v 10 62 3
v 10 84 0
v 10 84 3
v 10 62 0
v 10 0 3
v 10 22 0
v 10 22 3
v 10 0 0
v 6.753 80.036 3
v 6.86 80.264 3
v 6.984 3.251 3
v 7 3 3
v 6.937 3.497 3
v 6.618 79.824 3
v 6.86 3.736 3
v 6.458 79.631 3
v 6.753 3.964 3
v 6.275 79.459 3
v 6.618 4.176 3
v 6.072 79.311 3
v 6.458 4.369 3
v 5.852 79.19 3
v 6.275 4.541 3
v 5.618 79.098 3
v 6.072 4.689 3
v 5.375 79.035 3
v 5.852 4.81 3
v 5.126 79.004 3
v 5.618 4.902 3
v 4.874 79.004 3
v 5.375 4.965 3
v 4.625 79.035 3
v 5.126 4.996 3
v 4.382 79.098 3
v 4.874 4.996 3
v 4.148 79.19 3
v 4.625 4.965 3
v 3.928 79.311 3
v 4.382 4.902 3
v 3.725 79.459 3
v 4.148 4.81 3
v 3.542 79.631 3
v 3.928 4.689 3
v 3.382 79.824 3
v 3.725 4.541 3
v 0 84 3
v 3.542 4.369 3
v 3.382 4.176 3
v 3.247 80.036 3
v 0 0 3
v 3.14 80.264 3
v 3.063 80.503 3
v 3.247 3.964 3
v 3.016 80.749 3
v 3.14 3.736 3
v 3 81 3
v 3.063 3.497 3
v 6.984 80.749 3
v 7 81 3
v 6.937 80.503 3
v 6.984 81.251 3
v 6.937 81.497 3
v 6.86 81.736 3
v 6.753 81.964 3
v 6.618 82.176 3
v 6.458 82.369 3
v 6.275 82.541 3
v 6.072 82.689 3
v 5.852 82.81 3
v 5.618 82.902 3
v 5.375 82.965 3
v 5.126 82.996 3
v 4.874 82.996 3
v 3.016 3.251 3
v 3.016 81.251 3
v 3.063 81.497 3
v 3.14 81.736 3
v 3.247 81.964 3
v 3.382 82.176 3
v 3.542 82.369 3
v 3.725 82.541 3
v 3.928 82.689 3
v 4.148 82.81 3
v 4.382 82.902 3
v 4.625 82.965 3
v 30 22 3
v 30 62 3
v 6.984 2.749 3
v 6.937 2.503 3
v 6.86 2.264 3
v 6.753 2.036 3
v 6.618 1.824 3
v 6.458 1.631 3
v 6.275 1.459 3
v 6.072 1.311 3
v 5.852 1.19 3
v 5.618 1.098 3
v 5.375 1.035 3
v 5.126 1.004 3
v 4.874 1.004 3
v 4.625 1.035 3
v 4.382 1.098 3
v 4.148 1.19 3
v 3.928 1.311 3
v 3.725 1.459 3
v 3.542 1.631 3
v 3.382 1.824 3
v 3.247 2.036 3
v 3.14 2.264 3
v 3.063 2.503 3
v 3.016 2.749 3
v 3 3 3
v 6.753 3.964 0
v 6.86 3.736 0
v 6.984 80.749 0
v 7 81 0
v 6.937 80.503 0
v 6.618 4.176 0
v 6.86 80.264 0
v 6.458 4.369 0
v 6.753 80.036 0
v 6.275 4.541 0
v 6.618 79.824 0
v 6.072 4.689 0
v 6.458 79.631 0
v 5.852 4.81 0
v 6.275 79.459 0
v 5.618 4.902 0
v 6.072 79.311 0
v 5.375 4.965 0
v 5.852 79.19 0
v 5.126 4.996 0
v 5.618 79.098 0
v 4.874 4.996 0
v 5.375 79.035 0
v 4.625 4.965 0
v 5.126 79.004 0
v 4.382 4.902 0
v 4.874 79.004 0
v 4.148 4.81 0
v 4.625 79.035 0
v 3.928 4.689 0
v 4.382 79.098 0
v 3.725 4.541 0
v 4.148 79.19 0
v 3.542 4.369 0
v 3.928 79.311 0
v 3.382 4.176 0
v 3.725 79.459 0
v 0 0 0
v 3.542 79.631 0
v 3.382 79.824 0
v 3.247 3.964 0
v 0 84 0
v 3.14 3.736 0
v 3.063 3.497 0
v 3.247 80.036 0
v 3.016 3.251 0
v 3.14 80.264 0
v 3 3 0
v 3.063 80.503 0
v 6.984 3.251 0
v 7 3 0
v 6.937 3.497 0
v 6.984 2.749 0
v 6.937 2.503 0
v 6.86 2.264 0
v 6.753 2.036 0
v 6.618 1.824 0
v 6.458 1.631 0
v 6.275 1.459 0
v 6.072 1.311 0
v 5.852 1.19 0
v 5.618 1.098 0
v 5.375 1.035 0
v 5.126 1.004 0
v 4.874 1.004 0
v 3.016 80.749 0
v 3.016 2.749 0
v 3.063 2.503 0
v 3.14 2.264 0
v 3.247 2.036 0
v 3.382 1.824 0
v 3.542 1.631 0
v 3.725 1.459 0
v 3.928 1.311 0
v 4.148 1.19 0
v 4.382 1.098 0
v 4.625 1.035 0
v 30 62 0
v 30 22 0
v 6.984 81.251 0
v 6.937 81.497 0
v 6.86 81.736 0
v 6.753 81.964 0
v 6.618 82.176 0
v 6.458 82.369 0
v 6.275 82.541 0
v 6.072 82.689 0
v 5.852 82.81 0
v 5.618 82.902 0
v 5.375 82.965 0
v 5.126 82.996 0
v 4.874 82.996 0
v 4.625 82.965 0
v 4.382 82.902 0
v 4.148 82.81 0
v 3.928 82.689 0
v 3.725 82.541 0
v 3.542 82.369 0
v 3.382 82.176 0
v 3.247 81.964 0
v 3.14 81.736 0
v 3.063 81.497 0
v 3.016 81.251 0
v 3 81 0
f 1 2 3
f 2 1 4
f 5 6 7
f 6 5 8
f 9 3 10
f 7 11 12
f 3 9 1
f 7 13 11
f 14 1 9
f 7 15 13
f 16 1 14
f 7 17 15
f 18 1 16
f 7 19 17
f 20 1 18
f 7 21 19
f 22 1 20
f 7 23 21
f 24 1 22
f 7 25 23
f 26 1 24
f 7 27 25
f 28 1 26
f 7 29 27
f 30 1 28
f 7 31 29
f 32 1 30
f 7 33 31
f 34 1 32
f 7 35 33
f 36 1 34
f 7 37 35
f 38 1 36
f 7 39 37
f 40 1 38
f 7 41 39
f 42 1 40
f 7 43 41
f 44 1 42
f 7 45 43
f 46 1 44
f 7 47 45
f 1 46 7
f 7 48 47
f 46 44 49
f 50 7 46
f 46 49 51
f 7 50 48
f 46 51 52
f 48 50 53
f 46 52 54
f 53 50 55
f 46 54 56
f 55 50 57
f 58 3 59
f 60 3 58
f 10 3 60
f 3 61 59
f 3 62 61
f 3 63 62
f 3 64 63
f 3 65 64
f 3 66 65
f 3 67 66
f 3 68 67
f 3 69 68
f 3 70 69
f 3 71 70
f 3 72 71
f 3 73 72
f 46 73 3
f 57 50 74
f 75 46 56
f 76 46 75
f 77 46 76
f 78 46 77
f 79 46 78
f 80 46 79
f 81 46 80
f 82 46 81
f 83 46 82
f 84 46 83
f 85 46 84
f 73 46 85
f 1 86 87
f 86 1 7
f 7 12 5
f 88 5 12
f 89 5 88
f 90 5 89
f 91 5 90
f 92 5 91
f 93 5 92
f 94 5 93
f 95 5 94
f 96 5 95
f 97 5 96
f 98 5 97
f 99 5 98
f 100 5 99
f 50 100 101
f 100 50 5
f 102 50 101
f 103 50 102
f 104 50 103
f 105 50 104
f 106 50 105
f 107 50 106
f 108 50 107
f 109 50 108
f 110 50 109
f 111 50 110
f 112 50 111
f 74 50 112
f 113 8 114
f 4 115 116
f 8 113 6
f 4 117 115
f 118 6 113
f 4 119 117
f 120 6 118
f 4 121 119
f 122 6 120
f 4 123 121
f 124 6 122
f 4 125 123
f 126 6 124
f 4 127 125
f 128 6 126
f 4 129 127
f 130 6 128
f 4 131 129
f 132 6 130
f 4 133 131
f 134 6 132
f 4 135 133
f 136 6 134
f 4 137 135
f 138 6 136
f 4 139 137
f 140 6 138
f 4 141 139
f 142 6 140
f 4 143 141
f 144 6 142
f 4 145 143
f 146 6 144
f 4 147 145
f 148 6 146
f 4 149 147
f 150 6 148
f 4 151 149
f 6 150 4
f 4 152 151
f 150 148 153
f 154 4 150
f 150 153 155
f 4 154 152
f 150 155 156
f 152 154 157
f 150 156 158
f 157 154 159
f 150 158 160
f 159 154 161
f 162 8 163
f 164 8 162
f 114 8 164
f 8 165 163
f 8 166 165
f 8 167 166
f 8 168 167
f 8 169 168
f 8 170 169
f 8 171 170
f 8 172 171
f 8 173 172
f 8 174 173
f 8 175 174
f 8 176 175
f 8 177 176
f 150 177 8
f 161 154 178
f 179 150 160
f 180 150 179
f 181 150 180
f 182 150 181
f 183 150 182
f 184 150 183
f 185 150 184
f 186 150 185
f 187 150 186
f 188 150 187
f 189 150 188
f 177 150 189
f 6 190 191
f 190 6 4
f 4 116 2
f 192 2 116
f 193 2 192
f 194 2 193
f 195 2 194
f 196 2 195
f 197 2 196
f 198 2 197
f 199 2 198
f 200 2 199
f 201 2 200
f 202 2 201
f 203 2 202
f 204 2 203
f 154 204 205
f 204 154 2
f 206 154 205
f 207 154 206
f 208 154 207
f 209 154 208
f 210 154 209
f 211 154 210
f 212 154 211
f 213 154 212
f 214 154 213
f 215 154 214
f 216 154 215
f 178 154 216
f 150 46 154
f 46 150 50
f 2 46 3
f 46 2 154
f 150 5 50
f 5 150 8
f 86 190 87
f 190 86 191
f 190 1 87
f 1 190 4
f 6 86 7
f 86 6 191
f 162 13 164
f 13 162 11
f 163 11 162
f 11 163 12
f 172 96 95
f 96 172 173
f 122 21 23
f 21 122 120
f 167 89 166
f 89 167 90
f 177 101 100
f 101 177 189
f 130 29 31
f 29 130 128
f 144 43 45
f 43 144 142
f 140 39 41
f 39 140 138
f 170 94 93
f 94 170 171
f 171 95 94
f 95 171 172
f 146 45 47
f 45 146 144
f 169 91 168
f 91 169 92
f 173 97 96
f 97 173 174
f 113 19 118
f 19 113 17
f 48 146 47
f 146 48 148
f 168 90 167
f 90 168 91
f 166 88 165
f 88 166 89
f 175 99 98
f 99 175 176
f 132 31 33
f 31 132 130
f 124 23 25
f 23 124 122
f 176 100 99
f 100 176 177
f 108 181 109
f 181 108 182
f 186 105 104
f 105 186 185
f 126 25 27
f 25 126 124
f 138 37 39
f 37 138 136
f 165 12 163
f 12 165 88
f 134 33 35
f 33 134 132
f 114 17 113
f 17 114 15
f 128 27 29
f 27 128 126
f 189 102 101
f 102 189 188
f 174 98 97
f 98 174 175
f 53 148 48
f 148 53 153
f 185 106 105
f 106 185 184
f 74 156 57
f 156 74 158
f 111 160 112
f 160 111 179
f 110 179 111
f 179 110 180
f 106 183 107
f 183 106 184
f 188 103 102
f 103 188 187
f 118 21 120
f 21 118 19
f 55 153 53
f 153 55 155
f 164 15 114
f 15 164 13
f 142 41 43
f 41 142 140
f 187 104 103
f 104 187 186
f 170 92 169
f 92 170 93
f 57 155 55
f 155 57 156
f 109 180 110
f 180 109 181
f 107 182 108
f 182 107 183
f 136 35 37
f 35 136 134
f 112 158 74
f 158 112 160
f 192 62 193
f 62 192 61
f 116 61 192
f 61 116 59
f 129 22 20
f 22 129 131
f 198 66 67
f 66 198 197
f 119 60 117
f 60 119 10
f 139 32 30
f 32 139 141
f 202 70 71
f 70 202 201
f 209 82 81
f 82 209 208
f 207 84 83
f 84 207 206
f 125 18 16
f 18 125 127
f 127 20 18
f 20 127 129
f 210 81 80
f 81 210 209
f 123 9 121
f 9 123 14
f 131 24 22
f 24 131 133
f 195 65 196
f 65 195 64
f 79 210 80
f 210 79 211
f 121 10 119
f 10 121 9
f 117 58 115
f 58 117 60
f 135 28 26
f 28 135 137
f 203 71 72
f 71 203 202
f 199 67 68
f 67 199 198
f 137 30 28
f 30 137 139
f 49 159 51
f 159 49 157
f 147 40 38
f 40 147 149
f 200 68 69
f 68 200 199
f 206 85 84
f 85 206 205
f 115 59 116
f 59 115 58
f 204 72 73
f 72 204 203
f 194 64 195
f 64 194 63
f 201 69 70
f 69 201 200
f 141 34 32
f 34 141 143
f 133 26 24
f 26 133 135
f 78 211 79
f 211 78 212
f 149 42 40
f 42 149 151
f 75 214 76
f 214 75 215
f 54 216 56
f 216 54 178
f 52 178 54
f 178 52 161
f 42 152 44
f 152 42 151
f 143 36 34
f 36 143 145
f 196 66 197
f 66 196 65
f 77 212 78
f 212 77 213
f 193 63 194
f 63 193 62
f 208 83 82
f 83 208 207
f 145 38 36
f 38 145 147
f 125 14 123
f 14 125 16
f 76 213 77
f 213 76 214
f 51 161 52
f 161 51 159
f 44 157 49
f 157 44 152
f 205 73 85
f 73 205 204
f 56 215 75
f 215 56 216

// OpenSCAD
stanoff = true;

standHeight=3;

difference()
{
	union()
	{
		cube([10, 84, standHeight], false);
		
		translate([10, 22])
			cube([20, 40, standHeight], false);
		/*translate([20, 22])
			cube([10, 40, standHeight], false);*/
		
	}
	
	translate([5, 3])
		cylinder(30, 2, 2, false, $fn=50);
	translate([5, 81])
		cylinder(30, 2, 2, false, $fn=50);
	
	//translate([2.5, 10])
	//	cube([5, 64, standHeight], false);
}


/*
standHeight = 5;
difference()
{
	union()
	{
		cube([30, 40, standHeight], false);
		if (true == stanoff)
		{
			difference()
			{
				translate([2, 10, standHeight])
					cube([6, 20, 24], false);
				translate([0, 20, standHeight])
					cylinder(24, 5, 5, false, $fn=50);
			}
		}
	}

	translate([5, 13])
		cylinder(30, 2, 2, false, $fn=50);
	translate([5, 27])
		cylinder(30, 2, 2, false, $fn=50);
}*/
